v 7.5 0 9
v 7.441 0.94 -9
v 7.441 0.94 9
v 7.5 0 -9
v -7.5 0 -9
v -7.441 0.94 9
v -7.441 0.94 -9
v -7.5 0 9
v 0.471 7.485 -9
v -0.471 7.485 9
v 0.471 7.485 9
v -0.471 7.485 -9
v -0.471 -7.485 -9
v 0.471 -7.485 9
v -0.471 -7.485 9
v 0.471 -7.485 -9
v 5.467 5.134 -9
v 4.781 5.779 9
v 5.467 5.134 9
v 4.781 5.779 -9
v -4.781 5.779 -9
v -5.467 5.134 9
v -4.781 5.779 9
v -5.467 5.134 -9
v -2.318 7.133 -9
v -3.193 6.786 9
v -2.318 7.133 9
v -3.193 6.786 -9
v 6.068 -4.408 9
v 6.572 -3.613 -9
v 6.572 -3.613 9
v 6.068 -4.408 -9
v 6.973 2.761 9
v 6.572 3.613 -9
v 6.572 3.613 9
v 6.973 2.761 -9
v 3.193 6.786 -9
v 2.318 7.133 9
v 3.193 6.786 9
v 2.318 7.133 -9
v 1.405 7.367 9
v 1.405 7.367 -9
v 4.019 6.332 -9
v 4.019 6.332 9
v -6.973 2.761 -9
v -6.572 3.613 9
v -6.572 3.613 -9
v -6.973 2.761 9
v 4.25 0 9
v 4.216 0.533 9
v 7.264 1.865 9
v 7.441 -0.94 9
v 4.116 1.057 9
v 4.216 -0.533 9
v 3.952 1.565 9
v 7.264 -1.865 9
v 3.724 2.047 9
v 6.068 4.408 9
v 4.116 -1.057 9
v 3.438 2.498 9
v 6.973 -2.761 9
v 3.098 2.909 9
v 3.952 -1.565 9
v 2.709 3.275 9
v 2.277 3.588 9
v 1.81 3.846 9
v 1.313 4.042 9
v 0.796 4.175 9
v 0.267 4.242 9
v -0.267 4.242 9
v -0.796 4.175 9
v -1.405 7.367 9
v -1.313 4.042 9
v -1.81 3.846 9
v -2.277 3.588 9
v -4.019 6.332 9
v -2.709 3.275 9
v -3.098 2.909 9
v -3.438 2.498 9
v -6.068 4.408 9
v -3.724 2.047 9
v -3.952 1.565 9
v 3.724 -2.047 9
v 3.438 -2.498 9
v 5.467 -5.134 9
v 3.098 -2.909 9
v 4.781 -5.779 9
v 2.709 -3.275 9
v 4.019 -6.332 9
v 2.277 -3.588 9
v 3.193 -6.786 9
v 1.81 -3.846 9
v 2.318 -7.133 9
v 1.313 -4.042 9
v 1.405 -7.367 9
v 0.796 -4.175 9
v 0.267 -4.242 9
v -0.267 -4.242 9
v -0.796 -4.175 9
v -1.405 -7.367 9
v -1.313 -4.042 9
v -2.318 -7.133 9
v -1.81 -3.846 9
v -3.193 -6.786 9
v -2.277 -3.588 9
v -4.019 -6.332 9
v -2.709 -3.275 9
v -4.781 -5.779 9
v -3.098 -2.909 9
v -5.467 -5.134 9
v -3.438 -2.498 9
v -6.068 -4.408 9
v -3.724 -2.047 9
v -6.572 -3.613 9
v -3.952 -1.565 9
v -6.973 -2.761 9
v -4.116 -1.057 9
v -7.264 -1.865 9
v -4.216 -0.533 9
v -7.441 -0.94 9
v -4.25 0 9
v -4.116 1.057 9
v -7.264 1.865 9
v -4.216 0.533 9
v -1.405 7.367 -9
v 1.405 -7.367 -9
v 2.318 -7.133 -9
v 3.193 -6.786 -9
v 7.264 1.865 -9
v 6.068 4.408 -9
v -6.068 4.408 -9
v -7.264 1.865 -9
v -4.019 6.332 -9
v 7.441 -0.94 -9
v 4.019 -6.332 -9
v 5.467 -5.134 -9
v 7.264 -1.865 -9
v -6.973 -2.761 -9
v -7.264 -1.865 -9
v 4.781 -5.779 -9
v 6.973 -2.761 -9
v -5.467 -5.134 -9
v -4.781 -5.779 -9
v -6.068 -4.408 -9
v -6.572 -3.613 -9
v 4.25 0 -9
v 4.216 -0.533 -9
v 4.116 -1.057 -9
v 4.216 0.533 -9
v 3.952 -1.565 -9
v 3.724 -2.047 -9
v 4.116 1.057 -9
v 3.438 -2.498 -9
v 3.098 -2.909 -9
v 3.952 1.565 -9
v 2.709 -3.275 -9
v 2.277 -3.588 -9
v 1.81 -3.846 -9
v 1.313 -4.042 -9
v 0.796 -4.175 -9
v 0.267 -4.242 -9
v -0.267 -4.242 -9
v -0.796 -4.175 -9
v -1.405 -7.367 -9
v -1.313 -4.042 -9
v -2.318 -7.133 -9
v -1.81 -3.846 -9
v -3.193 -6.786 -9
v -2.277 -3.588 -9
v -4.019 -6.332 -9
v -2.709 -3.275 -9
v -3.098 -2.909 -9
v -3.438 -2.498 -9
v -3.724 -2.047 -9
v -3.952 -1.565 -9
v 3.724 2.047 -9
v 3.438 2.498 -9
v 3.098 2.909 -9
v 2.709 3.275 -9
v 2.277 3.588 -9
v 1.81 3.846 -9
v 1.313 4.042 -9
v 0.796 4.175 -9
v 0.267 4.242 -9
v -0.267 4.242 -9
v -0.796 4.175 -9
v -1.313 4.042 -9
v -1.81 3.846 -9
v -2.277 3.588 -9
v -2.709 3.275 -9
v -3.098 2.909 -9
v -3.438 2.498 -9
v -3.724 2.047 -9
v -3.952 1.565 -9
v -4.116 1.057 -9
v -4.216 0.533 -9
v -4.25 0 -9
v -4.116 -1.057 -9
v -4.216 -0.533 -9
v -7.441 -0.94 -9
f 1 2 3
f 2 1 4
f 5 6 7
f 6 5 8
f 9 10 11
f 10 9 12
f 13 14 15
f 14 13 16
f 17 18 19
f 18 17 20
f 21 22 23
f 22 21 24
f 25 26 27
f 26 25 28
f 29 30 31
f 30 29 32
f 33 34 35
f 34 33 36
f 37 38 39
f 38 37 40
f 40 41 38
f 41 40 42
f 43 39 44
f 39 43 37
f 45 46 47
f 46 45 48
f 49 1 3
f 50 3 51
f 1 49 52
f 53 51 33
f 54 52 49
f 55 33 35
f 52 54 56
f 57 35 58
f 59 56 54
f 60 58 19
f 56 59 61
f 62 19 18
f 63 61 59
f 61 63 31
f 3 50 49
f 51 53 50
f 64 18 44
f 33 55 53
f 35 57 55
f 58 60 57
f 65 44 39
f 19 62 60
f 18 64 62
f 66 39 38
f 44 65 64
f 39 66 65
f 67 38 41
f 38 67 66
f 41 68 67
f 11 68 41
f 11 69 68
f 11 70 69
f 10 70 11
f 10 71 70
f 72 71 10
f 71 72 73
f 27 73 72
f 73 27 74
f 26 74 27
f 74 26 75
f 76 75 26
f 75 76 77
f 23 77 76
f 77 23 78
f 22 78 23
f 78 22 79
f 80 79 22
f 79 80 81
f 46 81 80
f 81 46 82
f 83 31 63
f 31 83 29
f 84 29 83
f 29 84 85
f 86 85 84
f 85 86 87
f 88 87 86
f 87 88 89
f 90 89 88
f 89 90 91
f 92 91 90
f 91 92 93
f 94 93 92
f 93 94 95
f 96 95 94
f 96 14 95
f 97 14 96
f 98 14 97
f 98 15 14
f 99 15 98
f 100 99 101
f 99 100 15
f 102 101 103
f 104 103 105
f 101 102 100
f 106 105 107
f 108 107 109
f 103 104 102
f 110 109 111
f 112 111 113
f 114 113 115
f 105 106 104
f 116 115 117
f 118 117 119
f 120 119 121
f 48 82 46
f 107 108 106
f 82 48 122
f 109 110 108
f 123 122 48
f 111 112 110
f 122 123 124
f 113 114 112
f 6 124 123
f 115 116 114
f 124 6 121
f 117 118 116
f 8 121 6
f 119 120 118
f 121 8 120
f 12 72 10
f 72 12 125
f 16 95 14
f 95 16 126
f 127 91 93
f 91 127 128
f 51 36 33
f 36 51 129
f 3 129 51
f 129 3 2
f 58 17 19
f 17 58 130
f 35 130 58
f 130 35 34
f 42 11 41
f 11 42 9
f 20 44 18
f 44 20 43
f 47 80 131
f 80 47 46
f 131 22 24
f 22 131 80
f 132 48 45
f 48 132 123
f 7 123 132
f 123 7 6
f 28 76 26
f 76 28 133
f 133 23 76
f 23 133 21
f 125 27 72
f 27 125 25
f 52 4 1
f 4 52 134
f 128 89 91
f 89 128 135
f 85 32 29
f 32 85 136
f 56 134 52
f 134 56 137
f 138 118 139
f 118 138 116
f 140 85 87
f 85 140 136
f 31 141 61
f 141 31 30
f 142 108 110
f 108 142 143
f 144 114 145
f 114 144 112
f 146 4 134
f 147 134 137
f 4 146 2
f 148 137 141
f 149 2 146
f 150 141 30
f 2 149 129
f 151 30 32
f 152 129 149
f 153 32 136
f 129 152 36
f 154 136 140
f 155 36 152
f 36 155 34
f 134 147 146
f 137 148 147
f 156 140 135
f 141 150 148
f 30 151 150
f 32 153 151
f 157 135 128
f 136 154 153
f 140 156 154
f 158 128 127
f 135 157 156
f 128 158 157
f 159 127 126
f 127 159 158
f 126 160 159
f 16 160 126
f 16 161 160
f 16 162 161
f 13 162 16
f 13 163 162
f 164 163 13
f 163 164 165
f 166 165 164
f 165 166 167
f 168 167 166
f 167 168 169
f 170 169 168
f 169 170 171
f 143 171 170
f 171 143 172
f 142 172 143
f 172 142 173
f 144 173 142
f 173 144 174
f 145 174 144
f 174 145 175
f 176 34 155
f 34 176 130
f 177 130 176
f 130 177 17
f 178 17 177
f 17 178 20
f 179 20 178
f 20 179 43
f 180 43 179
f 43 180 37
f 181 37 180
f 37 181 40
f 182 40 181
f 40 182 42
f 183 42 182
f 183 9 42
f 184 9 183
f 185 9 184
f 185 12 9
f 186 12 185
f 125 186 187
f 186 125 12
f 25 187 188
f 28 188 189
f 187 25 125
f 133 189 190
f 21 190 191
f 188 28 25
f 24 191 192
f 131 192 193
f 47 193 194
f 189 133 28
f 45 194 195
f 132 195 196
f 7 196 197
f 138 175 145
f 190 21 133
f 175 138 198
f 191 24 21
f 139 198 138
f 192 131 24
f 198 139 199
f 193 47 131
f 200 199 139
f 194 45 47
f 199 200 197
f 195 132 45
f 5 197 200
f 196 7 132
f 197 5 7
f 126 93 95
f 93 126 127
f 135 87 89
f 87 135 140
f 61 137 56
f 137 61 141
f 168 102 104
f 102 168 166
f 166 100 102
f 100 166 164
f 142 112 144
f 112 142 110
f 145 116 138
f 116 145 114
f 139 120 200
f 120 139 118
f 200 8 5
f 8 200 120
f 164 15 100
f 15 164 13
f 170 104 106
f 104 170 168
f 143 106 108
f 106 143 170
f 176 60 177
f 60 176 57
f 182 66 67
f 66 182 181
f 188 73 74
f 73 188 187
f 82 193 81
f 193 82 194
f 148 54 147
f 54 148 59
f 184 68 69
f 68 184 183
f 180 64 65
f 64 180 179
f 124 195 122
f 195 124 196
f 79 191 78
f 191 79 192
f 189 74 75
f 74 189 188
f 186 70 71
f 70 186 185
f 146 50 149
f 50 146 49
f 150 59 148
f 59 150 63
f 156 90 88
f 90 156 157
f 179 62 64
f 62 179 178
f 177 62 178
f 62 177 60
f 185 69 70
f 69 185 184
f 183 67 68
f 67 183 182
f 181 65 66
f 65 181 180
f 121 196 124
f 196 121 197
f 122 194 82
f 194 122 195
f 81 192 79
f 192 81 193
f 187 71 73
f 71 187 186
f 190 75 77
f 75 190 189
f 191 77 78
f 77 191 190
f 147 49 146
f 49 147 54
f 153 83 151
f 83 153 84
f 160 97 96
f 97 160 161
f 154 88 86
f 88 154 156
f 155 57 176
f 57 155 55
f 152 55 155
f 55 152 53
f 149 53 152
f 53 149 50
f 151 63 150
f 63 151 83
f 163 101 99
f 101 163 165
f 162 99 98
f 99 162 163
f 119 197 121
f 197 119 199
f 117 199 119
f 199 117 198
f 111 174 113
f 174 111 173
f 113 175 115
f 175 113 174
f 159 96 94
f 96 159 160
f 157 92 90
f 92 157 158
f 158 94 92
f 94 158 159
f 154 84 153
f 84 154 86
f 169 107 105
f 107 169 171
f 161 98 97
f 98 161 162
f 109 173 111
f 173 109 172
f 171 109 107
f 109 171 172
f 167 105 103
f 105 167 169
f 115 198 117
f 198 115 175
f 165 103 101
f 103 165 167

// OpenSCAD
$fn = 50;


difference() {
	union() {
		translate(v = [0, 0, -9.0000000000]) {
			cylinder(h = 18, r = 7.5000000000);
		}
	}
	union() {
		translate(v = [0, 0, -100.0000000000]) {
			cylinder(h = 200, r = 4.2500000000);
		}
	}
}
